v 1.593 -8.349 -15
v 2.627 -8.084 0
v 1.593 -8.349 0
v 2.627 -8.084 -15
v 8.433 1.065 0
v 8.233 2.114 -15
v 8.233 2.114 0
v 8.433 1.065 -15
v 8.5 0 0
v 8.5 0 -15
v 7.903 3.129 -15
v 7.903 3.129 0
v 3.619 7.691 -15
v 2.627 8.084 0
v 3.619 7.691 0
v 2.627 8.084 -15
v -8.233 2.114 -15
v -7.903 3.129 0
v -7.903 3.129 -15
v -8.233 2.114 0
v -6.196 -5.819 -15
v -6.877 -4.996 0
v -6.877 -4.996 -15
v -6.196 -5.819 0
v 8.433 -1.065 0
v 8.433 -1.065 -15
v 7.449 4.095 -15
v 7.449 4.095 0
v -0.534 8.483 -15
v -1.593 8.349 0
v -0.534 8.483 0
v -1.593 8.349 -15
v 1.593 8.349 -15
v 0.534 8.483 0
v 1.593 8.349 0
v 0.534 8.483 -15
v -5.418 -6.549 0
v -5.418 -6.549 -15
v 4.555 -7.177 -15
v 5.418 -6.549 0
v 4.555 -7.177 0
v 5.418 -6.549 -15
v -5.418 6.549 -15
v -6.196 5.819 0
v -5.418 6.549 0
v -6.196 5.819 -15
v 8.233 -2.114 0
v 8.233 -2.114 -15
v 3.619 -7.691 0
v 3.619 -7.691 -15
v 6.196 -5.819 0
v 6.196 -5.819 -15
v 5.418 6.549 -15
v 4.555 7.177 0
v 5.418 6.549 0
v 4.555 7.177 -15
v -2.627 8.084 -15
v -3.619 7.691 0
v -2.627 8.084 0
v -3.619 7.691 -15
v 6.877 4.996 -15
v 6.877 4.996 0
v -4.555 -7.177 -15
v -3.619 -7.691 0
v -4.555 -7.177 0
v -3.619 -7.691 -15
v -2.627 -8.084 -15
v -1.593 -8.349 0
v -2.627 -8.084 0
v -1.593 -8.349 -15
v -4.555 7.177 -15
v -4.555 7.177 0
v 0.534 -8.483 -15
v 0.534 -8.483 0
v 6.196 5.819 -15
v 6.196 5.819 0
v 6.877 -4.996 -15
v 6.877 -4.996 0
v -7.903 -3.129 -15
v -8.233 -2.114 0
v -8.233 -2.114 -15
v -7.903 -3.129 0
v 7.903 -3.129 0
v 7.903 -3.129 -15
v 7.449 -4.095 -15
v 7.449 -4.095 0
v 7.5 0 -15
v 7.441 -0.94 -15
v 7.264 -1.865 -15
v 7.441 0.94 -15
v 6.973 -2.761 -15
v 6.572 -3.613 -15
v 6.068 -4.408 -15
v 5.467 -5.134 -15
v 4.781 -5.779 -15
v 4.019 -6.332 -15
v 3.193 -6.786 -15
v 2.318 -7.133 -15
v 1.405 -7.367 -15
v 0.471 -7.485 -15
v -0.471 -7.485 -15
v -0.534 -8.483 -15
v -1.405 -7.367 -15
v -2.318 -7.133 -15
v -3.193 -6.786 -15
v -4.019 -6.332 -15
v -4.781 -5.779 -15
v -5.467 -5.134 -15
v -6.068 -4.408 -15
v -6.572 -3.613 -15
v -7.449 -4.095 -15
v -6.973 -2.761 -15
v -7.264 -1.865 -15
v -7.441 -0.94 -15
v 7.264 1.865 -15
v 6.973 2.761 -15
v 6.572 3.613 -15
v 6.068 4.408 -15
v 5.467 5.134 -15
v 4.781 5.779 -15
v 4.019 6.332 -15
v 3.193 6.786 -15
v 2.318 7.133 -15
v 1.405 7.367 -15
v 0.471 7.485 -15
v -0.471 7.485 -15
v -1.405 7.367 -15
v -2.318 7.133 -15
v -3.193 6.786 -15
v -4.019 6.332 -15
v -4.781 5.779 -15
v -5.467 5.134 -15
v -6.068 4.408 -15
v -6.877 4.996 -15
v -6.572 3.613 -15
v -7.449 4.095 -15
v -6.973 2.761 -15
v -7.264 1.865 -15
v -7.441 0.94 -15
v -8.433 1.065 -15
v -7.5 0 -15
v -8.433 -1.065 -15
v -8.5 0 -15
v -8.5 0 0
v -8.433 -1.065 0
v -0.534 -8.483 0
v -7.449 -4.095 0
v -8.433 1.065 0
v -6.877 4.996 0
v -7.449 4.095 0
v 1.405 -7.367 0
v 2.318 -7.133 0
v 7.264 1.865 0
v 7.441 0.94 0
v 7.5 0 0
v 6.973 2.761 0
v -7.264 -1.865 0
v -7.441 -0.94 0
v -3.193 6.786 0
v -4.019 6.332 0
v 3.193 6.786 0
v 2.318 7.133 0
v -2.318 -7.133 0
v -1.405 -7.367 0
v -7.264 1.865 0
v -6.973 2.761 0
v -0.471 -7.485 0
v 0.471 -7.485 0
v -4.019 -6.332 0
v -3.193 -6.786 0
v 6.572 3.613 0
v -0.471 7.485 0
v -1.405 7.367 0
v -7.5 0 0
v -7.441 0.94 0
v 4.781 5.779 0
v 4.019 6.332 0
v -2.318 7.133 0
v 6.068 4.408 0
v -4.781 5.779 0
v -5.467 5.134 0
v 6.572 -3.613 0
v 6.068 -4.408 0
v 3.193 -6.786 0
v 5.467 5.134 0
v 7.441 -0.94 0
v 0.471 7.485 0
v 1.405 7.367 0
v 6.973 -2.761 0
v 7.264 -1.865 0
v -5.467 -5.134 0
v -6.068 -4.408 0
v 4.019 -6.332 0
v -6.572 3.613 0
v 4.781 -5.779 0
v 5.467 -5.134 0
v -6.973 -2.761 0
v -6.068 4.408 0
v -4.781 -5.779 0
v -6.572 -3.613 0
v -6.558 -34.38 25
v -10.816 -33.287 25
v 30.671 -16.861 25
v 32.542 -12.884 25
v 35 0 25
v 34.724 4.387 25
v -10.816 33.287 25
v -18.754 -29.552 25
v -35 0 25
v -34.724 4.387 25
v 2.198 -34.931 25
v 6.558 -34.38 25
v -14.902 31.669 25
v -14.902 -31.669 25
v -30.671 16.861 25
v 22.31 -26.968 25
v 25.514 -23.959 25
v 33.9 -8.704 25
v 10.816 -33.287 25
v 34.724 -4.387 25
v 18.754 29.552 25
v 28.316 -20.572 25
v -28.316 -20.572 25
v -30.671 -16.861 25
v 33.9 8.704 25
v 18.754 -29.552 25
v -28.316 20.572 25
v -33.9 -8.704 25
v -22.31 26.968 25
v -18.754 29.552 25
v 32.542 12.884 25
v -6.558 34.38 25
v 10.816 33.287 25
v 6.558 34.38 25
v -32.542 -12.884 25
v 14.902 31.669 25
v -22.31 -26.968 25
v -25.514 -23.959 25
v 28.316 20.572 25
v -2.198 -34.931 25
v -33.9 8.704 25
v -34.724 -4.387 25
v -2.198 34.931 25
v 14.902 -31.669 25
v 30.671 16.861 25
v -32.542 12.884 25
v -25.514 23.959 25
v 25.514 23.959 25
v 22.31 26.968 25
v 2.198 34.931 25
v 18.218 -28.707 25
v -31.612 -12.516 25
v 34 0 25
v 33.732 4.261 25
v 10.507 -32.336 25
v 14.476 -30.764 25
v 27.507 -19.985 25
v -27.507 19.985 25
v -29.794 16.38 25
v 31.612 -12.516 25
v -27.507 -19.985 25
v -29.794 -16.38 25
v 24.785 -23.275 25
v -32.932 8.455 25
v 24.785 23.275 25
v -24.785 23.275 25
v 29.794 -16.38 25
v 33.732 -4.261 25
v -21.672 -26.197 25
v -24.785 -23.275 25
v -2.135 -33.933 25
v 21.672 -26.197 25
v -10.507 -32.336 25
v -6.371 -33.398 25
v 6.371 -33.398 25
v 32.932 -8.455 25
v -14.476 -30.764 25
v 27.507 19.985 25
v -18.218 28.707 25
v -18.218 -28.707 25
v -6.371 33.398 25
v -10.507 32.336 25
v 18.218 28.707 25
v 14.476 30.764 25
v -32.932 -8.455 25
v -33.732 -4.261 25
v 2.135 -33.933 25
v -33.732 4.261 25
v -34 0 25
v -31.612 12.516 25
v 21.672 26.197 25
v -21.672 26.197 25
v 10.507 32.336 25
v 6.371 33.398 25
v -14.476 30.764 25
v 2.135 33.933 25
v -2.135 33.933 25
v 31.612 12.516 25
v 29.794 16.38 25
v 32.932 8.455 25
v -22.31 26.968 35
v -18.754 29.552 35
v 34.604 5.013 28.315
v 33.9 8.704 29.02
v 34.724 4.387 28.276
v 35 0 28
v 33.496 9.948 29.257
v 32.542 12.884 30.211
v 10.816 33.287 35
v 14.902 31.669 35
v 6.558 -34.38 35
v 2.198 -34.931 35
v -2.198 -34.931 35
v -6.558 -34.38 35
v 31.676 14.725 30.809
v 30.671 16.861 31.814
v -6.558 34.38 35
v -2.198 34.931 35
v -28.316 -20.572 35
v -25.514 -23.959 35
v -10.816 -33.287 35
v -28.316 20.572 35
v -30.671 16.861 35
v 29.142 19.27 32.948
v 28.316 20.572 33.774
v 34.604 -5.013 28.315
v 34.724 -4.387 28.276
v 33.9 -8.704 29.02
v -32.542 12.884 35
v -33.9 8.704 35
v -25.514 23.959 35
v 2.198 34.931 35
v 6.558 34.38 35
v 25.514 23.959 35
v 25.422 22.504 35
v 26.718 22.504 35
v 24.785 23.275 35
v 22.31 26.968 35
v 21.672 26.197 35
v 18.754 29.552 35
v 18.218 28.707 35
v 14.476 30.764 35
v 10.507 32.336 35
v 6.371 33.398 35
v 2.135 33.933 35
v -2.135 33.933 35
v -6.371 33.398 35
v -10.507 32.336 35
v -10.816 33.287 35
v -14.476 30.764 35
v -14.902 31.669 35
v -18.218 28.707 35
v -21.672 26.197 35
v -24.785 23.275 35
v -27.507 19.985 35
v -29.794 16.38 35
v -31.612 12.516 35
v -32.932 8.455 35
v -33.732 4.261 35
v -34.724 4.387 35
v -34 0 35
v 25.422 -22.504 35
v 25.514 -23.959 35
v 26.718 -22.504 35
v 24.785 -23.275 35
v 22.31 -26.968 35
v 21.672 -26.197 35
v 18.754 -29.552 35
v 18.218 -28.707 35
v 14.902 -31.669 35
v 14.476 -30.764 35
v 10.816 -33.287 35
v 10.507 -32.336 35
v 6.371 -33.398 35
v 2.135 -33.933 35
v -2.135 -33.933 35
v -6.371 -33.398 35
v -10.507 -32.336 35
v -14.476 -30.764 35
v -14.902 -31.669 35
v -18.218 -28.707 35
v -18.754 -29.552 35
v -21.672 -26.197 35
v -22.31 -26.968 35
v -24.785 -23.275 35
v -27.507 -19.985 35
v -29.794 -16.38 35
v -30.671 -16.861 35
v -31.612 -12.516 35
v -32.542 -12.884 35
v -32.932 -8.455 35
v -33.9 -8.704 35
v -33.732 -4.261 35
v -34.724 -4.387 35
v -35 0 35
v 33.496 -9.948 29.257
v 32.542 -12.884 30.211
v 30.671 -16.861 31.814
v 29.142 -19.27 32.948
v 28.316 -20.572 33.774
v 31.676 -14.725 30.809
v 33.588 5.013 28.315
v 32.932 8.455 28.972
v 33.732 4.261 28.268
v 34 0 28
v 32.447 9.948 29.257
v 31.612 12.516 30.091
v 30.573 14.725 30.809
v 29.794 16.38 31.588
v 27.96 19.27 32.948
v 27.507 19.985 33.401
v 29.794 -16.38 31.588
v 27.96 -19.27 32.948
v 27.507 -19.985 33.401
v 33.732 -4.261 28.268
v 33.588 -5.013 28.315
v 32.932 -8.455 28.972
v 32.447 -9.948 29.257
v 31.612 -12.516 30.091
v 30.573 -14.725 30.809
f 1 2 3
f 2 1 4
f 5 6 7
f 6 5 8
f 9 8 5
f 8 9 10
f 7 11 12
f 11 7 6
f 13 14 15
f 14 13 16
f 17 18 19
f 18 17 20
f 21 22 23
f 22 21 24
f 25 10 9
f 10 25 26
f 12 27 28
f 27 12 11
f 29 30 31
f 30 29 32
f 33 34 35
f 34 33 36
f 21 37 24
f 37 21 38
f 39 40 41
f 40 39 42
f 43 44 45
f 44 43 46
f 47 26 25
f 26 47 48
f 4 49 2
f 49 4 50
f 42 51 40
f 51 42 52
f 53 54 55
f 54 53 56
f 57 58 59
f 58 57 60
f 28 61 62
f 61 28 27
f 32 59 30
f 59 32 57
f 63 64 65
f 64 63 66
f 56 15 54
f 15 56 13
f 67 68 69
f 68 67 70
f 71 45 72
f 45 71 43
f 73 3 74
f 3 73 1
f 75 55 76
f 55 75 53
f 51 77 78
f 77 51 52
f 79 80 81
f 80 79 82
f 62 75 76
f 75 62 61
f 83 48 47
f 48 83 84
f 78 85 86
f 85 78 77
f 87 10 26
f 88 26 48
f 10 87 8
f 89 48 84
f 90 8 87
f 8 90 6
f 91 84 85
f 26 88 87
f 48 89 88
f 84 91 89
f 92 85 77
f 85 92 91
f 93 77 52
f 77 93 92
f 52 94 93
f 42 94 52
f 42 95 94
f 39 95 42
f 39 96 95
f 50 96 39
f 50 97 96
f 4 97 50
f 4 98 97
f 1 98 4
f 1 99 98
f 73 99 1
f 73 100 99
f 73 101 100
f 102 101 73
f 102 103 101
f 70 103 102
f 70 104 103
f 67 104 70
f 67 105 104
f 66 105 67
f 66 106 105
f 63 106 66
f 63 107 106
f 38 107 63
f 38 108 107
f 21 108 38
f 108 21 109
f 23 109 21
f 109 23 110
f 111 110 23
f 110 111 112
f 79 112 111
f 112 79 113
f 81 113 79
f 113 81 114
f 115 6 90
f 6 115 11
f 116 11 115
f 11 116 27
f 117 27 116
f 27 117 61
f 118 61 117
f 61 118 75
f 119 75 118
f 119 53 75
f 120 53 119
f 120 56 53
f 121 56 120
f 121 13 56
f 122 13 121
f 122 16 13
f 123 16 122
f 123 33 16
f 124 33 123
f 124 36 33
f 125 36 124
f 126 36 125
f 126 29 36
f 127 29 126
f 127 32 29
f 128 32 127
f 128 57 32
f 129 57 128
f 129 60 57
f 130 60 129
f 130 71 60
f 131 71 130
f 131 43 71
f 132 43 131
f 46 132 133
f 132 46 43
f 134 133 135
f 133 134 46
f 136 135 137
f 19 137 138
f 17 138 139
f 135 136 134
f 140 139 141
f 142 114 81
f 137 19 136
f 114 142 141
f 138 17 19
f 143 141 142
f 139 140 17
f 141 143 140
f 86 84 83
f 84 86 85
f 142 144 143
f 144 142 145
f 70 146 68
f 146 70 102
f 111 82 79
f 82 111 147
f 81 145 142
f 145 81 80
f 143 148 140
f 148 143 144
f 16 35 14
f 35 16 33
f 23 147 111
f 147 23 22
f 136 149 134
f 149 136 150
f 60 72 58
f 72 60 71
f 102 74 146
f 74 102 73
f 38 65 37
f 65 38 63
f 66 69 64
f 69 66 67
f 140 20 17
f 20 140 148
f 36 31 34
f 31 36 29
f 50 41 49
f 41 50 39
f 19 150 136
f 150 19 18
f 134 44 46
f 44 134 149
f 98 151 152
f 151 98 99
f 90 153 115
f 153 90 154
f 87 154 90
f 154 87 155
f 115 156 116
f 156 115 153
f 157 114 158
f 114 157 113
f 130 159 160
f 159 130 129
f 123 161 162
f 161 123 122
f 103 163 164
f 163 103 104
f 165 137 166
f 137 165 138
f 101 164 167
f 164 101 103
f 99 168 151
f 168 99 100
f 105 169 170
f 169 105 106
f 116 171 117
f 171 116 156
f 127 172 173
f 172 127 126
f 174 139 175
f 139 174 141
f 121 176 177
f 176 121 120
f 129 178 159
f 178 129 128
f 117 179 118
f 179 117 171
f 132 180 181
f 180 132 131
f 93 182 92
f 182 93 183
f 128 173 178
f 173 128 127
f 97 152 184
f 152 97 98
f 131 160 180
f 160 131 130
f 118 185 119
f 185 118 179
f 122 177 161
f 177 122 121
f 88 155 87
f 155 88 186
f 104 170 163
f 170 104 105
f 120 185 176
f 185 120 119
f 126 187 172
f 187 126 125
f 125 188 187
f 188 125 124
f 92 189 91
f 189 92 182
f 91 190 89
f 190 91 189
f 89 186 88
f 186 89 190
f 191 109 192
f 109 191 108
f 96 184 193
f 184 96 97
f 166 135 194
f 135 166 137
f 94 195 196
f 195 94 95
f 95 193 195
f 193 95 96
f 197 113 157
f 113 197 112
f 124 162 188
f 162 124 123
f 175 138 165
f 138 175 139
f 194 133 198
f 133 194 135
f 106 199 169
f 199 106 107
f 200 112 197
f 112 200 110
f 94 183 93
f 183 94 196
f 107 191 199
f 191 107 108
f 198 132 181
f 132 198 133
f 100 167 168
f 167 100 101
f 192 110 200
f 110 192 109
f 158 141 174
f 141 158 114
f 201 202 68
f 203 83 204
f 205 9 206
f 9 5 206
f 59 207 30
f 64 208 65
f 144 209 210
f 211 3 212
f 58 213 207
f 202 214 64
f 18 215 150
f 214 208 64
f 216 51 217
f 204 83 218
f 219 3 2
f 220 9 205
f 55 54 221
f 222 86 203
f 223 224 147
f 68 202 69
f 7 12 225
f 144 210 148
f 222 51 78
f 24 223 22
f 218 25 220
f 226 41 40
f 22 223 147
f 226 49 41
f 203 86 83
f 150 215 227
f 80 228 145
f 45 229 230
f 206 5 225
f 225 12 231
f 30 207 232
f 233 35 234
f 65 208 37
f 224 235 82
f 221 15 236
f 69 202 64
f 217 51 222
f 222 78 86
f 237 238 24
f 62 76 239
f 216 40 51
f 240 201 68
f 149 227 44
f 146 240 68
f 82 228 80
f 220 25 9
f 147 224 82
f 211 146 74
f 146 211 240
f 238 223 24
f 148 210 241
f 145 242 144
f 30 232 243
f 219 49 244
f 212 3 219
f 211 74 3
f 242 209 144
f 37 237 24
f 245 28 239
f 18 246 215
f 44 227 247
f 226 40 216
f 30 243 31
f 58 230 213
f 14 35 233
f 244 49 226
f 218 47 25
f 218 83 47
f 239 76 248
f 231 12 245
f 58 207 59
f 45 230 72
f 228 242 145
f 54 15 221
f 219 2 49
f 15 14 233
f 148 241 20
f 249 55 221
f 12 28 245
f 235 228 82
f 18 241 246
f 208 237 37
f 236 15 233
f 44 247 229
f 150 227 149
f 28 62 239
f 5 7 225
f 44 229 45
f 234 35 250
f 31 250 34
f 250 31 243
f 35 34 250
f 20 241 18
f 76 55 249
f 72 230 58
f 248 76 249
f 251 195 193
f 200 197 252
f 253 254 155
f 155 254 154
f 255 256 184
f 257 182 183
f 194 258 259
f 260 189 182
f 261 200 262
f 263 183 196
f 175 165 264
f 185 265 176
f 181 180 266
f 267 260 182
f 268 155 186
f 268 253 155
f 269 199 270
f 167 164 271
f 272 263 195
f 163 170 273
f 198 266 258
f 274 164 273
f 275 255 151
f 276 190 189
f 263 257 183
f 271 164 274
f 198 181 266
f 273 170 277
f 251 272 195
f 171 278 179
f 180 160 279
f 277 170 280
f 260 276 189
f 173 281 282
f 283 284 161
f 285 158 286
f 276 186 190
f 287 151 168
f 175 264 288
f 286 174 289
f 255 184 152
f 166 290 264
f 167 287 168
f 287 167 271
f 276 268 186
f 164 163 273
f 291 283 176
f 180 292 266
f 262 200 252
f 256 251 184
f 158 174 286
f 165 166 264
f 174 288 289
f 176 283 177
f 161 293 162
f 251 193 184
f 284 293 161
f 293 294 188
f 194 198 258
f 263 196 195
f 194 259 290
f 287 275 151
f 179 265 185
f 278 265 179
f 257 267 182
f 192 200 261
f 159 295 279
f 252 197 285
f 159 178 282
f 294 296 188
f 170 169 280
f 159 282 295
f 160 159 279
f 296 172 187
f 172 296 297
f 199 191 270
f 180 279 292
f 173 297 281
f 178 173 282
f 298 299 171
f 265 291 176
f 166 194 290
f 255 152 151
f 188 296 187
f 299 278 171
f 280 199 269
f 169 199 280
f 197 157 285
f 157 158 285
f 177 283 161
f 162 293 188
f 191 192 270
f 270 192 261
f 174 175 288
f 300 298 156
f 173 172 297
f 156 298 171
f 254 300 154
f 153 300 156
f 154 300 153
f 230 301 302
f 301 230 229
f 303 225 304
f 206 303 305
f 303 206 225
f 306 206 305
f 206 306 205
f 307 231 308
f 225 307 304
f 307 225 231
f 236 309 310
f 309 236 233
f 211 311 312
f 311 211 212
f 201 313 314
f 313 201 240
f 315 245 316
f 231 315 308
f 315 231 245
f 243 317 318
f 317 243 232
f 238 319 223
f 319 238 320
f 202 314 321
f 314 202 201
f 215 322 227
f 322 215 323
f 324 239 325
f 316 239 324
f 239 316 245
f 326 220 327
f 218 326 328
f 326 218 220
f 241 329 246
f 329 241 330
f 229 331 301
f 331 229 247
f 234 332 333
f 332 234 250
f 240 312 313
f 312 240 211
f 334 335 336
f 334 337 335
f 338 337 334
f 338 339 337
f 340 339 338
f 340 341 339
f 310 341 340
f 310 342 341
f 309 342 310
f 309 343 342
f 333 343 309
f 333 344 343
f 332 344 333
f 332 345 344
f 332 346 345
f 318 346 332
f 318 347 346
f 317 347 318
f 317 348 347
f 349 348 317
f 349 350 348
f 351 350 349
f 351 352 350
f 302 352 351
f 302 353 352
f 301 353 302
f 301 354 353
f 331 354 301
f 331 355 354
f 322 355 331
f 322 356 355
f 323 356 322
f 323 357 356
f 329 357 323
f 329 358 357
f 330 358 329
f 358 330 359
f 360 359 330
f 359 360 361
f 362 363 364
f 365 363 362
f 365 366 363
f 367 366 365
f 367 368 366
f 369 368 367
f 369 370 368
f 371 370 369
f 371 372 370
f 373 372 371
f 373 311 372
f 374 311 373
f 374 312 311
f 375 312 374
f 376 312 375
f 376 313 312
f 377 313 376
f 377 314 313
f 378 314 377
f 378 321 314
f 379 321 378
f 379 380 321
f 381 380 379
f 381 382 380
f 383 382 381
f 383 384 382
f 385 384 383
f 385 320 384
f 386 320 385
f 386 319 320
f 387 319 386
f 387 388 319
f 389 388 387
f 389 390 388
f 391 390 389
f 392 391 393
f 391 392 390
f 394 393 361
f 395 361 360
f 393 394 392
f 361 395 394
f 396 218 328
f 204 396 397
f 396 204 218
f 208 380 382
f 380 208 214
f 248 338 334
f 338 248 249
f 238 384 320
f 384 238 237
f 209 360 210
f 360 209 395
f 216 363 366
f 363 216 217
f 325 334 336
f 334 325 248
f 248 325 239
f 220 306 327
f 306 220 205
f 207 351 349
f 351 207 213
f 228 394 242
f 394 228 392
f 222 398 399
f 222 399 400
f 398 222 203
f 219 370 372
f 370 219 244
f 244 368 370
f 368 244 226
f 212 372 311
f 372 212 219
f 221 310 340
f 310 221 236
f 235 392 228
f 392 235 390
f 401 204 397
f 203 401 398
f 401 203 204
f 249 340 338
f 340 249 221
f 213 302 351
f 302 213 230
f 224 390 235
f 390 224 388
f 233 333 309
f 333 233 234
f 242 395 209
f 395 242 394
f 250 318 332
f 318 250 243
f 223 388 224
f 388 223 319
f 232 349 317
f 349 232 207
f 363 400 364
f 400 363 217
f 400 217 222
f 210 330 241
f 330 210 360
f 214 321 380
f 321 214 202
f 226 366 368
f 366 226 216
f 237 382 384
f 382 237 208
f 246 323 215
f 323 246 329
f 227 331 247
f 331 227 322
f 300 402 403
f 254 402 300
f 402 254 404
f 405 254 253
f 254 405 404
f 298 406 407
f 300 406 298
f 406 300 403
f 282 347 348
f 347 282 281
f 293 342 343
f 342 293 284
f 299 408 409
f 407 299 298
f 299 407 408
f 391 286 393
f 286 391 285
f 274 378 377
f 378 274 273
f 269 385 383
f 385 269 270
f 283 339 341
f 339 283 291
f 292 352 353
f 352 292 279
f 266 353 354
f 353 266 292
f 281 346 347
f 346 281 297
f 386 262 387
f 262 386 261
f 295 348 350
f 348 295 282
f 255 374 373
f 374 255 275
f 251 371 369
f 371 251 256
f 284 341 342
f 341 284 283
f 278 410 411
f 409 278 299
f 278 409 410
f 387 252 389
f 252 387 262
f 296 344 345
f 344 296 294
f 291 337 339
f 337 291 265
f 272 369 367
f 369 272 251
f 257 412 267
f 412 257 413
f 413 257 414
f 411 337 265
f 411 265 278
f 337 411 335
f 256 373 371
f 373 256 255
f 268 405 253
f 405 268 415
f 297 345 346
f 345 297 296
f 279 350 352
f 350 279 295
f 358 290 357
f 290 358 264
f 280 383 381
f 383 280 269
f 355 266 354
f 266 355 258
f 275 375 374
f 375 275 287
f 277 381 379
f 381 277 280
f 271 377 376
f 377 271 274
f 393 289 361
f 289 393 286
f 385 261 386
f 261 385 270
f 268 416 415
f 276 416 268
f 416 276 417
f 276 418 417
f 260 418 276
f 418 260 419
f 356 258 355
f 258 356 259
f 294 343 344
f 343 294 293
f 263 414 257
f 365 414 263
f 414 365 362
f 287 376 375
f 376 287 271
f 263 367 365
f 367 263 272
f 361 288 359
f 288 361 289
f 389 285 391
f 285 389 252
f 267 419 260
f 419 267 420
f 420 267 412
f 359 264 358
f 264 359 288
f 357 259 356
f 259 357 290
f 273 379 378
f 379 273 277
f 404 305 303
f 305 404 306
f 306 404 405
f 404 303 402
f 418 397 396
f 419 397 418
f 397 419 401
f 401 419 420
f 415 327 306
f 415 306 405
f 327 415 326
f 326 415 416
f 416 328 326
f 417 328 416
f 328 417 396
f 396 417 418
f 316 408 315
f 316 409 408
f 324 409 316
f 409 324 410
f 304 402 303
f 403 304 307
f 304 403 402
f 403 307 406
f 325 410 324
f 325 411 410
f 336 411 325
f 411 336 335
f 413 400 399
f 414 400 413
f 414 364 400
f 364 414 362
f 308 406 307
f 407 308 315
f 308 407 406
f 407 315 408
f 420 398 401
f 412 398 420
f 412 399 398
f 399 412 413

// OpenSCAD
translate([0, 0, -15])
    difference() {
        cylinder(d=17,h=15, $fn=50);
        cylinder(d=15,h=15, $fn=50);
    }

difference() {
    cylinder(d1=17, d2=70, h=25, $fn=50);
    cylinder(d1=15, d2=68, h=25, $fn=50);
}

translate([0,0,25])
difference() {
    cylinder(d=70, h=10, $fn=50);
    cylinder(d=68, h=10, $fn=50);
    translate([0,0,43])
    rotate([0,90,0])
    cylinder(d=80, h=40, $fn=50);
}
